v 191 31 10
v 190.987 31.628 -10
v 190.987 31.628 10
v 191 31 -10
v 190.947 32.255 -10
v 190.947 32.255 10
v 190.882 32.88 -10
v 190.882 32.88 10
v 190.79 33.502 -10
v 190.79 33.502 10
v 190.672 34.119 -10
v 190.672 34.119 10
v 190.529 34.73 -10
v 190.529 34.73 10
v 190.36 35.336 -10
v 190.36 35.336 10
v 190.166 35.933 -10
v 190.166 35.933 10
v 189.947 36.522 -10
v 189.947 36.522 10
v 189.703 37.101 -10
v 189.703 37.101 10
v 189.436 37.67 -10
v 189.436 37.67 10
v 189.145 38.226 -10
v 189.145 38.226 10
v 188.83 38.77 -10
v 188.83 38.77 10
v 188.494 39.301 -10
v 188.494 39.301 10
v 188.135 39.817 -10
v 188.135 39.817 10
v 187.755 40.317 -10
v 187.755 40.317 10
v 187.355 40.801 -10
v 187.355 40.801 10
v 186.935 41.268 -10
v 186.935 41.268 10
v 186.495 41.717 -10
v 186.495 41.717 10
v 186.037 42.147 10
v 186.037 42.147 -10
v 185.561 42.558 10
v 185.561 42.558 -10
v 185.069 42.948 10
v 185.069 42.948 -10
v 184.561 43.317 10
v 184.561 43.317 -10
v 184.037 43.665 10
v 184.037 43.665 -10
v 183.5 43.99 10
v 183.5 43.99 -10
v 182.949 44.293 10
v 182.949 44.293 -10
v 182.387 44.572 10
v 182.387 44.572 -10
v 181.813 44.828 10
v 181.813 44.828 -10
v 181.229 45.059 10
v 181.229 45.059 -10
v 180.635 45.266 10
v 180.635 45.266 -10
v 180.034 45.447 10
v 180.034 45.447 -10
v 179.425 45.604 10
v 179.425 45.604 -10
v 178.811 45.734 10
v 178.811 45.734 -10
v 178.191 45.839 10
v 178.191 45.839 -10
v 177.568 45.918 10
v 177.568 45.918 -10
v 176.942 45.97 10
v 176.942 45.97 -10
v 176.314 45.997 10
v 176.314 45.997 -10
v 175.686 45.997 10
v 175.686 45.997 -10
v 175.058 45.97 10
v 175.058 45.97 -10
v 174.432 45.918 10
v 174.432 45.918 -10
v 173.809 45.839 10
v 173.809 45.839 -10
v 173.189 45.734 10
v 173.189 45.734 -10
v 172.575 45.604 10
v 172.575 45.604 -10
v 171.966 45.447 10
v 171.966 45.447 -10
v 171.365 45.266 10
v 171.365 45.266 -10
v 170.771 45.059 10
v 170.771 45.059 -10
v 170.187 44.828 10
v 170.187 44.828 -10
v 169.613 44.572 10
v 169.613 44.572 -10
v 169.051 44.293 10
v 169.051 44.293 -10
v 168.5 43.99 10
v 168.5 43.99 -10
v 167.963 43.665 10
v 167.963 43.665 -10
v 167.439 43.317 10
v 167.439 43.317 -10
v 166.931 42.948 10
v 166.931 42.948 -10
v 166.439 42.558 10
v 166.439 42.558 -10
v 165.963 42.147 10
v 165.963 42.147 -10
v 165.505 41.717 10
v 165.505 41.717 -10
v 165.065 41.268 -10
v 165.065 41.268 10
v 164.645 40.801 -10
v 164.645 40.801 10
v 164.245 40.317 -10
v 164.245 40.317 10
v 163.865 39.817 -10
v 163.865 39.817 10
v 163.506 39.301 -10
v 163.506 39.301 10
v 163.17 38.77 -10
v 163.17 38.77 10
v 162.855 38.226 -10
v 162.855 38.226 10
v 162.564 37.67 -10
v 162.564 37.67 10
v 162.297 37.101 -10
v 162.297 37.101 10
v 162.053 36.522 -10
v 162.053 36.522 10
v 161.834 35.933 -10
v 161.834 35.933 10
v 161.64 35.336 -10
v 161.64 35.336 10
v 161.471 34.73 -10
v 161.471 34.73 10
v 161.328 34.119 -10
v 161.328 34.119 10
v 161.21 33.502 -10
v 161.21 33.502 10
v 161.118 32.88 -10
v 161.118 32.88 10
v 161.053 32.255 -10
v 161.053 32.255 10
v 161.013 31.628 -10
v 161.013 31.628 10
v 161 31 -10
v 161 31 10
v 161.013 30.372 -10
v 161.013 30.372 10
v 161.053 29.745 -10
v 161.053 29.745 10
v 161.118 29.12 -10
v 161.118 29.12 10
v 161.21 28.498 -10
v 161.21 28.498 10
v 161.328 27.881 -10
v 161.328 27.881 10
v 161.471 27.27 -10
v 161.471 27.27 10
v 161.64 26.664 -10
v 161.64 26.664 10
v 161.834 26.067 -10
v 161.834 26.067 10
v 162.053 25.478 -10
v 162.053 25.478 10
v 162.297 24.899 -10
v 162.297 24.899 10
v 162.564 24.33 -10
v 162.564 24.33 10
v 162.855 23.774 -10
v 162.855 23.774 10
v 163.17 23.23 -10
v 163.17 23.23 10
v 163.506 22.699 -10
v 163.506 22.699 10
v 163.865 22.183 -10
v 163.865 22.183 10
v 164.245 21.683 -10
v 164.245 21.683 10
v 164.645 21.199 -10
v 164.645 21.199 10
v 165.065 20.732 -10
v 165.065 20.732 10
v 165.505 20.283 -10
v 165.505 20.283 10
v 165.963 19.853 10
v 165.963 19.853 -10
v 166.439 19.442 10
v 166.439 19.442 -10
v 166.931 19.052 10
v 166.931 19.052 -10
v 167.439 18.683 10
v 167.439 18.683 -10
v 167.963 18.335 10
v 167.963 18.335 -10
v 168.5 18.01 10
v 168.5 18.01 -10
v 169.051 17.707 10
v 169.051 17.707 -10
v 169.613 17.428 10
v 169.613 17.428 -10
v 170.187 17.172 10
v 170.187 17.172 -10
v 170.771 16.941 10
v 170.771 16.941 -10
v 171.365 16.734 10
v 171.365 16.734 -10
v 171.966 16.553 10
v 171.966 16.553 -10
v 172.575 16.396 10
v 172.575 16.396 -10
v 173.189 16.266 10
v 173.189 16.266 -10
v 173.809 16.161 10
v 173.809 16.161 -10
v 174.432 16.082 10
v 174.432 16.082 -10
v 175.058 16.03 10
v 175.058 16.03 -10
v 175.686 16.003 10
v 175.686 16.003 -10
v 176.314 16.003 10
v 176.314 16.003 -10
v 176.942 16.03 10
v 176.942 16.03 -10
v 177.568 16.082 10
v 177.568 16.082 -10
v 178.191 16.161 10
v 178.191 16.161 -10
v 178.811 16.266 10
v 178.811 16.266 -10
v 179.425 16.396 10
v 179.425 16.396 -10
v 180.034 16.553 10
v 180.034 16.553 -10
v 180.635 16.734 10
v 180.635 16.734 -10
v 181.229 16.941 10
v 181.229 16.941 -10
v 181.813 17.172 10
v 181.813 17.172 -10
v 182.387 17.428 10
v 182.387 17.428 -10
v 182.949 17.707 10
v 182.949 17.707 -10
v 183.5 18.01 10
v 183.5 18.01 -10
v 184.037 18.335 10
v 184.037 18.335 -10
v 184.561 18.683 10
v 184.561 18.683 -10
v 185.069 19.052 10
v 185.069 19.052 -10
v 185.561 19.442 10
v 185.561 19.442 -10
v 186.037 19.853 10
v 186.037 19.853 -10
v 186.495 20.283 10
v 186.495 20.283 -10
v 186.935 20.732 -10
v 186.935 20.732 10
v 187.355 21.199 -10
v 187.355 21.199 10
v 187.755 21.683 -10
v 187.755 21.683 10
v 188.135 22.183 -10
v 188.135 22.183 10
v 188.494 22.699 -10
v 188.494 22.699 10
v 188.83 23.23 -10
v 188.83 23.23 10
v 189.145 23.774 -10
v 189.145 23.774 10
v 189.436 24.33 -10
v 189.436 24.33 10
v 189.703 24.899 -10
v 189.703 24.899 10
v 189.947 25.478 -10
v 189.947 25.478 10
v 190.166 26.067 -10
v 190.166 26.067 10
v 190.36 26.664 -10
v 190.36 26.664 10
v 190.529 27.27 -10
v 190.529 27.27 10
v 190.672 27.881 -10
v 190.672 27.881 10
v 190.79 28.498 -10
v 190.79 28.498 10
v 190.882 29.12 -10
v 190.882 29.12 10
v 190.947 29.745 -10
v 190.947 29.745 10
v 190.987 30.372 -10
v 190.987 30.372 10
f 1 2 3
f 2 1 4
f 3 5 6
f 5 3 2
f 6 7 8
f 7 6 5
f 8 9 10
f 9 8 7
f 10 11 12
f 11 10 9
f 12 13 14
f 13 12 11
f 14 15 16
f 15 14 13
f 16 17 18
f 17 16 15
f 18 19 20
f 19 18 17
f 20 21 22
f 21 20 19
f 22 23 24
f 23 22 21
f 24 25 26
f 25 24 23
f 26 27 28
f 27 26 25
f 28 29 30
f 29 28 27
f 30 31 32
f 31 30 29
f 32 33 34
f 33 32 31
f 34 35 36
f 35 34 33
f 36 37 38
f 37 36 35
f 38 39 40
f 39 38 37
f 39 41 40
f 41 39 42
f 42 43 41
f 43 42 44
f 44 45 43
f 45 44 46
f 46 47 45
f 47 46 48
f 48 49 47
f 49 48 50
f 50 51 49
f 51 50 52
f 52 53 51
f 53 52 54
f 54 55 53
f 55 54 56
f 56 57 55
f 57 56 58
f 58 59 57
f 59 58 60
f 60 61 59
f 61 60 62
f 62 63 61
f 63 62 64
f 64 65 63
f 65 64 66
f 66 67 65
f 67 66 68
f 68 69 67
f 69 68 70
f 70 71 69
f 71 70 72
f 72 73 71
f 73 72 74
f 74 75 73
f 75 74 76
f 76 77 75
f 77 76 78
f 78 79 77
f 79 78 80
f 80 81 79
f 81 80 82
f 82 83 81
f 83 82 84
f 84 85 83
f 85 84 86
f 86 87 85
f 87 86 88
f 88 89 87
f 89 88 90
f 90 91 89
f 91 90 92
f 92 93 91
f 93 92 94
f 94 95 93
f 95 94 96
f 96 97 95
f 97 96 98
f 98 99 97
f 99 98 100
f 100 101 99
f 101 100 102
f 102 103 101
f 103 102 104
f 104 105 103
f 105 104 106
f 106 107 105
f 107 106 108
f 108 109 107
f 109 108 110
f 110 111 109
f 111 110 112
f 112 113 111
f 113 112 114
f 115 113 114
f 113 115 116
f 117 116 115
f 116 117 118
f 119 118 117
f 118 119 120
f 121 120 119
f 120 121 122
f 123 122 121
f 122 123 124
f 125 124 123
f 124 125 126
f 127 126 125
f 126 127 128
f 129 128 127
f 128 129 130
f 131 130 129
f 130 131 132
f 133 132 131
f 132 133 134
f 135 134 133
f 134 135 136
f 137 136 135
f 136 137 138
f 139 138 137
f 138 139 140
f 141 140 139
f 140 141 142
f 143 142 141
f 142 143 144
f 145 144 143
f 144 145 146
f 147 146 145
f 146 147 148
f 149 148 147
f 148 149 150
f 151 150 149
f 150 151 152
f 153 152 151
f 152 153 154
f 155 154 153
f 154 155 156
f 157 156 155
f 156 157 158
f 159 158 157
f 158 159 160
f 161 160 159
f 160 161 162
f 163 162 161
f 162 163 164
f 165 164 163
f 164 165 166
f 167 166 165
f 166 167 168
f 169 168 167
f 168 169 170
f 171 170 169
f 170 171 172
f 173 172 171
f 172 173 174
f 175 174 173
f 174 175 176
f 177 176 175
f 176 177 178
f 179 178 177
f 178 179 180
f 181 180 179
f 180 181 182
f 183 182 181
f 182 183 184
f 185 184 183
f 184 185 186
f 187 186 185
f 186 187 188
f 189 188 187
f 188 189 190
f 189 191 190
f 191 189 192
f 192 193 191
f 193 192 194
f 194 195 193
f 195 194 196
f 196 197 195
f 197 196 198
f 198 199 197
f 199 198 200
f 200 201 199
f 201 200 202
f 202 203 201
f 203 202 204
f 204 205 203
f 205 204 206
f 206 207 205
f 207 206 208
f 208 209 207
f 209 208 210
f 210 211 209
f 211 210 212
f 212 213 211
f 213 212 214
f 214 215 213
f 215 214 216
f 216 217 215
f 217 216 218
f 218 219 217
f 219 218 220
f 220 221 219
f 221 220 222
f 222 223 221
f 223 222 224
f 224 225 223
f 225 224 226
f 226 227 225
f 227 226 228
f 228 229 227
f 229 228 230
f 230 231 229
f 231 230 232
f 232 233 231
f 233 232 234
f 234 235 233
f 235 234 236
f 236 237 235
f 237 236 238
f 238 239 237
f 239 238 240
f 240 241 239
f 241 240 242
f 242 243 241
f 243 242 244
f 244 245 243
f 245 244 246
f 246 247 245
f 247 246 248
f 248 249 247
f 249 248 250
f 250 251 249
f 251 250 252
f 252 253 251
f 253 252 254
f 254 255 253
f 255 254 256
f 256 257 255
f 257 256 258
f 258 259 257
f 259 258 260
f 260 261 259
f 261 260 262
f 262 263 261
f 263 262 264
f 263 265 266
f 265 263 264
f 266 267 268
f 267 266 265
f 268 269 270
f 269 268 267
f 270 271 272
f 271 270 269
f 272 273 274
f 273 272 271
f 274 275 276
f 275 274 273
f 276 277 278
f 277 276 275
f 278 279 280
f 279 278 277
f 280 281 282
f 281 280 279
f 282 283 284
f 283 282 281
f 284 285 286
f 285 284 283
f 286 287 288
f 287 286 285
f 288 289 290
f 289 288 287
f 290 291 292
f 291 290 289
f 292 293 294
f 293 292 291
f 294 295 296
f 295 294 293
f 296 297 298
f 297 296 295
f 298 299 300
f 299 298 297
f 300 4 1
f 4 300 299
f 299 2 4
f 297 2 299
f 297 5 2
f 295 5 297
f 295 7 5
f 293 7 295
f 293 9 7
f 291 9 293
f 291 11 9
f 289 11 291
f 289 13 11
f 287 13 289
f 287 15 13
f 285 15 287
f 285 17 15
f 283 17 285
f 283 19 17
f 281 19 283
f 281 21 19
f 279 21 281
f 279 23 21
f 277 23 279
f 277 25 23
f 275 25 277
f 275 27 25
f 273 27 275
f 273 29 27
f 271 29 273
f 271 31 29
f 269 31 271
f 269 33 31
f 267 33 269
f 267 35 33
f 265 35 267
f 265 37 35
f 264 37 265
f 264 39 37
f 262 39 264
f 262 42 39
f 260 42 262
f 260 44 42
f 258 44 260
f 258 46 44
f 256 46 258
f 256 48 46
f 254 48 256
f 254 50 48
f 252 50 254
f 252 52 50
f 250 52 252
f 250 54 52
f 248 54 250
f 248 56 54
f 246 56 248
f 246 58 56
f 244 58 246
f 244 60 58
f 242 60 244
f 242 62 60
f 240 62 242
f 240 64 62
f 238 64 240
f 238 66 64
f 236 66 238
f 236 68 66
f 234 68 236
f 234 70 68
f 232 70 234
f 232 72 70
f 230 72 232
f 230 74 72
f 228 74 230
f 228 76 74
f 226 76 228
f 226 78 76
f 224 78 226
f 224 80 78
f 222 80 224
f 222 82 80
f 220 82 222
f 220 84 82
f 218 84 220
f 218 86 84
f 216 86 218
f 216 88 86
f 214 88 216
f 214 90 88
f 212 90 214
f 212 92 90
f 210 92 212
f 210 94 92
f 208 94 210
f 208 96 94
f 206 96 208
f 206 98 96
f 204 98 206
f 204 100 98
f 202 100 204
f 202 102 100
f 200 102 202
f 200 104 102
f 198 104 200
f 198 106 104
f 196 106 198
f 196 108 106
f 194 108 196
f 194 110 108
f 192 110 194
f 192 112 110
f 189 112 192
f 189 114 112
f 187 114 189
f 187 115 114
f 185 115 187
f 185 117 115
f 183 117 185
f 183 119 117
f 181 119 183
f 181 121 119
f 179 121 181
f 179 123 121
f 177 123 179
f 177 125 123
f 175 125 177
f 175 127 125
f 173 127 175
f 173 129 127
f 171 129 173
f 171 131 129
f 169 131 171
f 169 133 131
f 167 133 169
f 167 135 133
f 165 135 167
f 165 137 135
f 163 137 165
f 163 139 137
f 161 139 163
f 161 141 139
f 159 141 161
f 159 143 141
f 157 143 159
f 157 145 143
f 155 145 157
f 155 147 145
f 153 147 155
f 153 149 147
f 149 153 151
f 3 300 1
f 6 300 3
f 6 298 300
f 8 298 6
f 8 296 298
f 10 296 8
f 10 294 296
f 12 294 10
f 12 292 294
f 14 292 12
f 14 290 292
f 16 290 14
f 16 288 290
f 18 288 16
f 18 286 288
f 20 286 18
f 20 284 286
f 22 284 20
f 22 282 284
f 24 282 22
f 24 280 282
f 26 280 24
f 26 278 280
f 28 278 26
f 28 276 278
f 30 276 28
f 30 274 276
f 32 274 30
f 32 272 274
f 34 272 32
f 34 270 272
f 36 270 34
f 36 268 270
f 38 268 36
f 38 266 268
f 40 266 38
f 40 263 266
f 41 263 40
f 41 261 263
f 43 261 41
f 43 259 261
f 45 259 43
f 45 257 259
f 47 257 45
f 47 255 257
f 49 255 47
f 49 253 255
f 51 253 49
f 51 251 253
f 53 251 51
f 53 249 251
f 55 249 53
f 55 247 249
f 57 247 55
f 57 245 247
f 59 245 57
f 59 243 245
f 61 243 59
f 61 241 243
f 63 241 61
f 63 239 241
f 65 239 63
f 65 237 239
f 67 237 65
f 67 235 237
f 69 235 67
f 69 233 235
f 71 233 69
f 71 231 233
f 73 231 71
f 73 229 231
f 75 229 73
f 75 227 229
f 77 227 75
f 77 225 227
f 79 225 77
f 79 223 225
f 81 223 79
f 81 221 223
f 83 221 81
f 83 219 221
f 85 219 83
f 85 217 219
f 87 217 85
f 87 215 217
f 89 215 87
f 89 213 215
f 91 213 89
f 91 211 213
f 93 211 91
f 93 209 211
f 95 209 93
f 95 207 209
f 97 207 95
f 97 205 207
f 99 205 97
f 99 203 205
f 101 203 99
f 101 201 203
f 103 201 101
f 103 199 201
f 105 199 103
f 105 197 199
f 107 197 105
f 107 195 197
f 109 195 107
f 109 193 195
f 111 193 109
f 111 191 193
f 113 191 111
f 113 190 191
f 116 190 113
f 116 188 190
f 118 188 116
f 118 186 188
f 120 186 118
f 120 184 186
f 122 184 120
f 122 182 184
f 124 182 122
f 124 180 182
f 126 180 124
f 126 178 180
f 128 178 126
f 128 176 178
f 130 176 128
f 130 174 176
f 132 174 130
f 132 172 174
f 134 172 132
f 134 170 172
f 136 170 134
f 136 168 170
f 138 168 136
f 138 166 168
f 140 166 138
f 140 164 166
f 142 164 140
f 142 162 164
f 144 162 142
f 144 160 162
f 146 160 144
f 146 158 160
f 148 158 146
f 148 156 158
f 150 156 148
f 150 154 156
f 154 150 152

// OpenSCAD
$fn = 150;

translate([176, 31, 0])
rotate([0, 0, 0])
cylinder(20, 15, 15, true);
